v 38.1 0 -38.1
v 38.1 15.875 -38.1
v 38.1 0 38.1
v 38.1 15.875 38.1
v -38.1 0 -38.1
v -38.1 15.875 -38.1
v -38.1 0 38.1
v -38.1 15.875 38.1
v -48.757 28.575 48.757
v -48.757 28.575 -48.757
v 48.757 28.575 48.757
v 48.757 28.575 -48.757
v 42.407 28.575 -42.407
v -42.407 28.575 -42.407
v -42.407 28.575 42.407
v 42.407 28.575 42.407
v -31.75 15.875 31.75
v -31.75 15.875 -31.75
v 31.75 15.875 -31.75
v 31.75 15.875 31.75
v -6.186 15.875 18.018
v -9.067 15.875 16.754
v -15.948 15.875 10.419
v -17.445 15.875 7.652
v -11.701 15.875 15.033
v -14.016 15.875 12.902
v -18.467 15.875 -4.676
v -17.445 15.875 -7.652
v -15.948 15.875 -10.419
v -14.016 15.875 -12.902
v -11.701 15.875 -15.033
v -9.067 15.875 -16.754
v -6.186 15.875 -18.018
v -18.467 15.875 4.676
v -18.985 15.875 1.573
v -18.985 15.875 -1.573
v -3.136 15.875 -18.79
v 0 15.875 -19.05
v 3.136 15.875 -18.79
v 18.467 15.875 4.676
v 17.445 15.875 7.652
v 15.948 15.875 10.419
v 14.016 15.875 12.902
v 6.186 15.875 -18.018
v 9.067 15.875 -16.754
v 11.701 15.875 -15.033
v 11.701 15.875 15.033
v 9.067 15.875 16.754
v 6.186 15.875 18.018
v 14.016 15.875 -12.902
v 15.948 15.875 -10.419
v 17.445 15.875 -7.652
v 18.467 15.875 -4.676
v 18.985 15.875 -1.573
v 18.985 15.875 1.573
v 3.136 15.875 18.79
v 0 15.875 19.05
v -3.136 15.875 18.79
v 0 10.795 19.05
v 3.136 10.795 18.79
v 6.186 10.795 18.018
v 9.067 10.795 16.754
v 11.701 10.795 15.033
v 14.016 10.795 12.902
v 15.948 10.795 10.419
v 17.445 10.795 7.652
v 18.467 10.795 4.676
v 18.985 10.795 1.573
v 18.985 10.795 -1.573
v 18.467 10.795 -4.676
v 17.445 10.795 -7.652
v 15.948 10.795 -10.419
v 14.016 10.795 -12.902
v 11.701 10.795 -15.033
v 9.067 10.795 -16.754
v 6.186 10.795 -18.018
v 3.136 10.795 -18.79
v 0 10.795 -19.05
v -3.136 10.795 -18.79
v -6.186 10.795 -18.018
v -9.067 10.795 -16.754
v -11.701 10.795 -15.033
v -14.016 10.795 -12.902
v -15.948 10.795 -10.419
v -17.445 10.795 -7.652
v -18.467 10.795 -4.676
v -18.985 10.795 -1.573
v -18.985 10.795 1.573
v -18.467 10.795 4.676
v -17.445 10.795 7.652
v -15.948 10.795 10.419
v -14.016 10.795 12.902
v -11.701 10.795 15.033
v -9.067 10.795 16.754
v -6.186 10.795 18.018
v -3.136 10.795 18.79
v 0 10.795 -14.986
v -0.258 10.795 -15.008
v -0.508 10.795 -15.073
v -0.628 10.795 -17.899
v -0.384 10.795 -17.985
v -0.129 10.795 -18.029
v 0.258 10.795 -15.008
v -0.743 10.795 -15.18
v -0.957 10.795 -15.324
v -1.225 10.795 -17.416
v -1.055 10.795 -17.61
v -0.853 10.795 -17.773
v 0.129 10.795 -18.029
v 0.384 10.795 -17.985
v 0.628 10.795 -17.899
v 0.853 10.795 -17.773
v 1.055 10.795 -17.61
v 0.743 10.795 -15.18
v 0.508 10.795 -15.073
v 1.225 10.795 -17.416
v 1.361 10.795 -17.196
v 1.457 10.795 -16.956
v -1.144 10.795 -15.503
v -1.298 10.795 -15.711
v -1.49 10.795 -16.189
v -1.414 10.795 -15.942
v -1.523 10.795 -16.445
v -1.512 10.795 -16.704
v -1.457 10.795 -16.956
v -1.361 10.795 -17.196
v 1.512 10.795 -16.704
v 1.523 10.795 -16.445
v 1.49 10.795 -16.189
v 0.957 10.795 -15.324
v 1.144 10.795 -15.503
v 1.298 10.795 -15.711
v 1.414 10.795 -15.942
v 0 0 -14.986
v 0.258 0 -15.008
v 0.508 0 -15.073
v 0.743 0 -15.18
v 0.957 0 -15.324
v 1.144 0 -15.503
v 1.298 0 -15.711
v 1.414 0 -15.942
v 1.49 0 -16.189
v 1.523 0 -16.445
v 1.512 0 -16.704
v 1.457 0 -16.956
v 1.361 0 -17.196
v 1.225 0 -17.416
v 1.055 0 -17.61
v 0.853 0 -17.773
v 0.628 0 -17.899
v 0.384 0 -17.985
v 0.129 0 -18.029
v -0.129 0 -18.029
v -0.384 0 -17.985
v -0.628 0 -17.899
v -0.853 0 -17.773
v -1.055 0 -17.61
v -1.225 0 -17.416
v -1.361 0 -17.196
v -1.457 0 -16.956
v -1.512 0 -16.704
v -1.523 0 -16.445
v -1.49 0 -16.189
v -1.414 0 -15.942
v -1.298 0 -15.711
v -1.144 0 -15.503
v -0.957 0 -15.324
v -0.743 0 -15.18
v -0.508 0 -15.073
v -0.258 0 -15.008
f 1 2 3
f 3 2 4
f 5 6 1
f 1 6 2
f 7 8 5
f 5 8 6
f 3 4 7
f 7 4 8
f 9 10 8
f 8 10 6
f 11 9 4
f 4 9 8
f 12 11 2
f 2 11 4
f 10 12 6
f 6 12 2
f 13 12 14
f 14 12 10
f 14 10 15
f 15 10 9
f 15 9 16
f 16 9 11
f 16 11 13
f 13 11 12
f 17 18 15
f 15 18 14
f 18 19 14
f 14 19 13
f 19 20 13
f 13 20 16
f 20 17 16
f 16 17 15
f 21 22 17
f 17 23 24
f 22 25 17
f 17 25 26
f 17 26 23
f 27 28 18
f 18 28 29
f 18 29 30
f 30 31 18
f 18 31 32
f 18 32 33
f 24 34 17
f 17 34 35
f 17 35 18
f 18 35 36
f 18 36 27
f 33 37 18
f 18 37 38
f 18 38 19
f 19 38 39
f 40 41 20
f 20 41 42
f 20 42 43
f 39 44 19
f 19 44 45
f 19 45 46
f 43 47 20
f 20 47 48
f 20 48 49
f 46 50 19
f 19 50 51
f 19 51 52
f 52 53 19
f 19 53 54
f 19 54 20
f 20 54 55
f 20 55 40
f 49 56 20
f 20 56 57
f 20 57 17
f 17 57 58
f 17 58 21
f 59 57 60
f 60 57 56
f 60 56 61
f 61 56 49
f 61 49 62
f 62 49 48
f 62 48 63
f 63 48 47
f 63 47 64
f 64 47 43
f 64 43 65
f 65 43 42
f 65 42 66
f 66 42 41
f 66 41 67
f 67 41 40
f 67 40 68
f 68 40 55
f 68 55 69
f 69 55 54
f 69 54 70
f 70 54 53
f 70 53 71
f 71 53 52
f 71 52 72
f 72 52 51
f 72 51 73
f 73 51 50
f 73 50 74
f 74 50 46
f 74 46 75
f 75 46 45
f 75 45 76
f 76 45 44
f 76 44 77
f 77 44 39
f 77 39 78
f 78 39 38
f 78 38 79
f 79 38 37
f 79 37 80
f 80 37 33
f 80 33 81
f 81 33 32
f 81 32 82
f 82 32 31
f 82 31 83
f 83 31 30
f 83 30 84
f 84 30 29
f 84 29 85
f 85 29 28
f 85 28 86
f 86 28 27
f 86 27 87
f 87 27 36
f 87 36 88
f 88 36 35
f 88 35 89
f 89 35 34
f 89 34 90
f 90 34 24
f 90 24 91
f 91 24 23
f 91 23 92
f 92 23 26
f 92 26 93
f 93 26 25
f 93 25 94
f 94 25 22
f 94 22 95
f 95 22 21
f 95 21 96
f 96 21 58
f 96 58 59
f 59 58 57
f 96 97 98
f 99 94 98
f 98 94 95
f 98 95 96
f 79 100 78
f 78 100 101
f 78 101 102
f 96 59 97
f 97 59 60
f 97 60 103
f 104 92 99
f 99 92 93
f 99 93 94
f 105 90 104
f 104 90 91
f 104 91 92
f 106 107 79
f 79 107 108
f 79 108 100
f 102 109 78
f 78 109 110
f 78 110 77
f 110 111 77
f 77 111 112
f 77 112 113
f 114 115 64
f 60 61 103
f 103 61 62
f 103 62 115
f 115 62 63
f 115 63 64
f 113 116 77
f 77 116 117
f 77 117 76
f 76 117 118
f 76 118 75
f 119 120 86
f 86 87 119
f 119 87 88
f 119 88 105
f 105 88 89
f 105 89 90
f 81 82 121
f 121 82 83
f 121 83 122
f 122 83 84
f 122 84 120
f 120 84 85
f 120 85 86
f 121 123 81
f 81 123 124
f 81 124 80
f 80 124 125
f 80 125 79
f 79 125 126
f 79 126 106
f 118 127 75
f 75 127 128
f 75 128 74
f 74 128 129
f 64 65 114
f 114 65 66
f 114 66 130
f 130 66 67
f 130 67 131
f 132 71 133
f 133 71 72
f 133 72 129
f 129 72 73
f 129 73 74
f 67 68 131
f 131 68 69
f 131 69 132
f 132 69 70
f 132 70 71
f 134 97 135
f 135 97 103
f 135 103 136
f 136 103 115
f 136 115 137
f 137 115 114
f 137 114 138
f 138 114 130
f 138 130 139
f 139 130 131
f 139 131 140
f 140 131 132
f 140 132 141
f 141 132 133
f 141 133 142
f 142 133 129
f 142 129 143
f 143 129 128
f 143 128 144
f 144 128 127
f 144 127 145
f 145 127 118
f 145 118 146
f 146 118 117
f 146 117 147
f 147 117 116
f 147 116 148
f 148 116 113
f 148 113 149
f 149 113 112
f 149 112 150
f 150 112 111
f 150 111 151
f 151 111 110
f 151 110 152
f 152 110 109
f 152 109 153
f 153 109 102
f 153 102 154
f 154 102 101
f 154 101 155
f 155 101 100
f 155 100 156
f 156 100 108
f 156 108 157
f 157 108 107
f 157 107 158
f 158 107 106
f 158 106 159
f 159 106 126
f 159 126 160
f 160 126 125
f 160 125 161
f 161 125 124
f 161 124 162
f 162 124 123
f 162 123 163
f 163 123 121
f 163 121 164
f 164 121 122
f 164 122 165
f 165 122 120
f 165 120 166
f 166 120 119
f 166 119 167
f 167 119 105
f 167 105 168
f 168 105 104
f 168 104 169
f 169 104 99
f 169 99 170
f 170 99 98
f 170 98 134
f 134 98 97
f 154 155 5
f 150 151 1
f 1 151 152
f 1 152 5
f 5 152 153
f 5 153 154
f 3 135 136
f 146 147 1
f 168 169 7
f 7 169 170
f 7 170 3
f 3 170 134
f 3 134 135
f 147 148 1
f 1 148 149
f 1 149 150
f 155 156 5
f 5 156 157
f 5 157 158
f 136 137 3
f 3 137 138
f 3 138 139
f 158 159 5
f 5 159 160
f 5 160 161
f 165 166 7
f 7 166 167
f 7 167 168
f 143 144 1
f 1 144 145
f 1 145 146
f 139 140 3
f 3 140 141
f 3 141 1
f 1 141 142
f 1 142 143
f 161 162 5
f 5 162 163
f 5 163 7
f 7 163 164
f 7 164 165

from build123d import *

# Parameters (mm, degrees)
SKETCH1_W               = 76.2
SKETCH1_H               = 76.2
BOSS_EXTRUDE1_DEPTH     = 15.875
SKETCH2_W               = 76.2
SKETCH2_H               = 76.2
BOSS_EXTRUDE2_DEPTH     = 12.7
BOSS_EXTRUDE2_DRAFT     = -40
MIRROR1_COPY_1_SKETCH_W = 76.2
MIRROR1_COPY_1_SKETCH_H = 76.2
MIRROR1_COPY_1_DEPTH    = 12.7
MIRROR1_COPY_1_DRAFT    = -40
SKETCH4_W               = 84.813130632
SKETCH4_H               = 84.813130632
CUT_EXTRUDE2_DEPTH      = 12.7
CUT_EXTRUDE2_DRAFT      = -40
SKETCH5_R               = 19.05
CUT_EXTRUDE3_DEPTH      = 5.08
SKETCH6_R               = 1.524
CUT_EXTRUDE4_DEPTH      = 20.32
CUT_EXTRUDE5_REACH      = 76.639
SKETCH8_W               = 110.353971767
SKETCH8_H               = 106.914185114


with BuildPart() as part:
    # Sketch1 → Boss-Extrude1 (new, symmetric)
    with BuildSketch(Plane(origin=(0, 0, 0), x_dir=(1, 0, 0), z_dir=(0, 1, 0))):
        Rectangle(SKETCH1_W, SKETCH1_H)
    extrude(amount=BOSS_EXTRUDE1_DEPTH, both=True)


with BuildPart() as boss_extrude2_tool:
    # Sketch2 → Boss-Extrude2 (with draft: the straight prism first)
    with BuildSketch(Plane(origin=(0, 15.875, 0), x_dir=(1, 0, 0), z_dir=(0, 1, 0))):
        Rectangle(SKETCH2_W, SKETCH2_H)
    extrude(amount=BOSS_EXTRUDE2_DEPTH)
    # Boss-Extrude2: the draft: its side faces are tilted about the plane it starts from
    boss_extrude2_sides = [boss_extrude2_tool.faces().sort_by_distance(p)[0] for p in [
        (-38.1, 22.225, 0),
        (0, 22.225, 38.1),
        (38.1, 22.225, 0),
        (0, 22.225, -38.1),
    ]]
    draft(boss_extrude2_sides, Plane(origin=(0, 15.875, 0), x_dir=(1, 0, 0), z_dir=(0, 1, 0)), BOSS_EXTRUDE2_DRAFT)


with BuildPart() as part_1:
    add(part.part)

    # Boss-Extrude2: add boss_extrude2_tool
    add(boss_extrude2_tool.part)


with BuildPart() as mirror1_copy_1_tool:
    # Mirror1 copy 1 sketch → Mirror1 copy 1 (with draft: the straight prism first)
    with BuildSketch(Plane.XZ.offset(15.875)):
        Rectangle(MIRROR1_COPY_1_SKETCH_W, MIRROR1_COPY_1_SKETCH_H)
    extrude(amount=MIRROR1_COPY_1_DEPTH)
    # Mirror1 copy 1: the draft: its side faces are tilted about the plane it starts from
    mirror1_copy_1_sides = [mirror1_copy_1_tool.faces().sort_by_distance(p)[0] for p in [
        (-38.1, -22.225, 0),
        (0, -22.225, 38.1),
        (38.1, -22.225, 0),
        (0, -22.225, -38.1),
    ]]
    draft(mirror1_copy_1_sides, Plane.XZ.offset(15.875), MIRROR1_COPY_1_DRAFT)


with BuildPart() as part_2:
    add(part_1.part)

    # Mirror1 copy 1: add mirror1_copy_1_tool
    add(mirror1_copy_1_tool.part)


with BuildPart() as cut_extrude2_tool:
    # Sketch4 → Cut-Extrude2 (with draft: the straight prism first)
    with BuildSketch(Plane(origin=(0, 28.575, 0), x_dir=(1, 0, 0), z_dir=(0, 1, 0))):
        Rectangle(SKETCH4_W, SKETCH4_H)
    extrude(amount=-CUT_EXTRUDE2_DEPTH)
    # Cut-Extrude2: the draft: its side faces are tilted about the plane it starts from
    cut_extrude2_sides = [cut_extrude2_tool.faces().sort_by_distance(p)[0] for p in [
        (42.406565316, 22.225, 0),
        (0, 22.225, -42.406565316),
        (-42.406565316, 22.225, 0),
        (0, 22.225, 42.406565316),
    ]]
    draft(cut_extrude2_sides, Plane(origin=(0, 28.575, 0), x_dir=(1, 0, 0), z_dir=(0, 1, 0)), CUT_EXTRUDE2_DRAFT)


with BuildPart() as part_3:
    add(part_2.part)

    # Cut-Extrude2: cut by cut_extrude2_tool
    add(cut_extrude2_tool.part, mode=Mode.SUBTRACT)

    # Sketch5 → Cut-Extrude3 (cut)
    with BuildSketch(Plane(origin=(0, 15.875, 0), x_dir=(1, 0, 0), z_dir=(0, 1, 0))):
        with Locations(Location((0, 0, 0), (0, 0, 270))):
            Circle(SKETCH5_R)
    extrude(amount=-CUT_EXTRUDE3_DEPTH, mode=Mode.SUBTRACT)

    # Sketch6 → Cut-Extrude4 (cut)
    with BuildSketch(Plane(origin=(0, 10.795, 0), x_dir=(1, 0, 0), z_dir=(0, 1, 0))):
        with Locations(Location((0, 16.51, 0), (0, 0, 270))):
            Circle(SKETCH6_R)
    extrude(amount=-CUT_EXTRUDE4_DEPTH, mode=Mode.SUBTRACT)

    # Sketch8 → Cut-Extrude5 (cut, up to next)
    with BuildSketch(Plane(origin=(0, 0, 0), x_dir=(1, 0, 0), z_dir=(0, 1, 0)), mode=Mode.PRIVATE) as cut_extrude5_sk1:
        with Locations((3.158987741, -3.05368815)):
            Rectangle(SKETCH8_W, SKETCH8_H)
    cut_extrude5_tool1 = extrude(cut_extrude5_sk1.sketch, amount=-CUT_EXTRUDE5_REACH, mode=Mode.PRIVATE) & part_3.part
    add(cut_extrude5_tool1.solids().sort_by_distance((3.158988, 0, 3.053688))[0], mode=Mode.SUBTRACT)


solid = part_3.part
